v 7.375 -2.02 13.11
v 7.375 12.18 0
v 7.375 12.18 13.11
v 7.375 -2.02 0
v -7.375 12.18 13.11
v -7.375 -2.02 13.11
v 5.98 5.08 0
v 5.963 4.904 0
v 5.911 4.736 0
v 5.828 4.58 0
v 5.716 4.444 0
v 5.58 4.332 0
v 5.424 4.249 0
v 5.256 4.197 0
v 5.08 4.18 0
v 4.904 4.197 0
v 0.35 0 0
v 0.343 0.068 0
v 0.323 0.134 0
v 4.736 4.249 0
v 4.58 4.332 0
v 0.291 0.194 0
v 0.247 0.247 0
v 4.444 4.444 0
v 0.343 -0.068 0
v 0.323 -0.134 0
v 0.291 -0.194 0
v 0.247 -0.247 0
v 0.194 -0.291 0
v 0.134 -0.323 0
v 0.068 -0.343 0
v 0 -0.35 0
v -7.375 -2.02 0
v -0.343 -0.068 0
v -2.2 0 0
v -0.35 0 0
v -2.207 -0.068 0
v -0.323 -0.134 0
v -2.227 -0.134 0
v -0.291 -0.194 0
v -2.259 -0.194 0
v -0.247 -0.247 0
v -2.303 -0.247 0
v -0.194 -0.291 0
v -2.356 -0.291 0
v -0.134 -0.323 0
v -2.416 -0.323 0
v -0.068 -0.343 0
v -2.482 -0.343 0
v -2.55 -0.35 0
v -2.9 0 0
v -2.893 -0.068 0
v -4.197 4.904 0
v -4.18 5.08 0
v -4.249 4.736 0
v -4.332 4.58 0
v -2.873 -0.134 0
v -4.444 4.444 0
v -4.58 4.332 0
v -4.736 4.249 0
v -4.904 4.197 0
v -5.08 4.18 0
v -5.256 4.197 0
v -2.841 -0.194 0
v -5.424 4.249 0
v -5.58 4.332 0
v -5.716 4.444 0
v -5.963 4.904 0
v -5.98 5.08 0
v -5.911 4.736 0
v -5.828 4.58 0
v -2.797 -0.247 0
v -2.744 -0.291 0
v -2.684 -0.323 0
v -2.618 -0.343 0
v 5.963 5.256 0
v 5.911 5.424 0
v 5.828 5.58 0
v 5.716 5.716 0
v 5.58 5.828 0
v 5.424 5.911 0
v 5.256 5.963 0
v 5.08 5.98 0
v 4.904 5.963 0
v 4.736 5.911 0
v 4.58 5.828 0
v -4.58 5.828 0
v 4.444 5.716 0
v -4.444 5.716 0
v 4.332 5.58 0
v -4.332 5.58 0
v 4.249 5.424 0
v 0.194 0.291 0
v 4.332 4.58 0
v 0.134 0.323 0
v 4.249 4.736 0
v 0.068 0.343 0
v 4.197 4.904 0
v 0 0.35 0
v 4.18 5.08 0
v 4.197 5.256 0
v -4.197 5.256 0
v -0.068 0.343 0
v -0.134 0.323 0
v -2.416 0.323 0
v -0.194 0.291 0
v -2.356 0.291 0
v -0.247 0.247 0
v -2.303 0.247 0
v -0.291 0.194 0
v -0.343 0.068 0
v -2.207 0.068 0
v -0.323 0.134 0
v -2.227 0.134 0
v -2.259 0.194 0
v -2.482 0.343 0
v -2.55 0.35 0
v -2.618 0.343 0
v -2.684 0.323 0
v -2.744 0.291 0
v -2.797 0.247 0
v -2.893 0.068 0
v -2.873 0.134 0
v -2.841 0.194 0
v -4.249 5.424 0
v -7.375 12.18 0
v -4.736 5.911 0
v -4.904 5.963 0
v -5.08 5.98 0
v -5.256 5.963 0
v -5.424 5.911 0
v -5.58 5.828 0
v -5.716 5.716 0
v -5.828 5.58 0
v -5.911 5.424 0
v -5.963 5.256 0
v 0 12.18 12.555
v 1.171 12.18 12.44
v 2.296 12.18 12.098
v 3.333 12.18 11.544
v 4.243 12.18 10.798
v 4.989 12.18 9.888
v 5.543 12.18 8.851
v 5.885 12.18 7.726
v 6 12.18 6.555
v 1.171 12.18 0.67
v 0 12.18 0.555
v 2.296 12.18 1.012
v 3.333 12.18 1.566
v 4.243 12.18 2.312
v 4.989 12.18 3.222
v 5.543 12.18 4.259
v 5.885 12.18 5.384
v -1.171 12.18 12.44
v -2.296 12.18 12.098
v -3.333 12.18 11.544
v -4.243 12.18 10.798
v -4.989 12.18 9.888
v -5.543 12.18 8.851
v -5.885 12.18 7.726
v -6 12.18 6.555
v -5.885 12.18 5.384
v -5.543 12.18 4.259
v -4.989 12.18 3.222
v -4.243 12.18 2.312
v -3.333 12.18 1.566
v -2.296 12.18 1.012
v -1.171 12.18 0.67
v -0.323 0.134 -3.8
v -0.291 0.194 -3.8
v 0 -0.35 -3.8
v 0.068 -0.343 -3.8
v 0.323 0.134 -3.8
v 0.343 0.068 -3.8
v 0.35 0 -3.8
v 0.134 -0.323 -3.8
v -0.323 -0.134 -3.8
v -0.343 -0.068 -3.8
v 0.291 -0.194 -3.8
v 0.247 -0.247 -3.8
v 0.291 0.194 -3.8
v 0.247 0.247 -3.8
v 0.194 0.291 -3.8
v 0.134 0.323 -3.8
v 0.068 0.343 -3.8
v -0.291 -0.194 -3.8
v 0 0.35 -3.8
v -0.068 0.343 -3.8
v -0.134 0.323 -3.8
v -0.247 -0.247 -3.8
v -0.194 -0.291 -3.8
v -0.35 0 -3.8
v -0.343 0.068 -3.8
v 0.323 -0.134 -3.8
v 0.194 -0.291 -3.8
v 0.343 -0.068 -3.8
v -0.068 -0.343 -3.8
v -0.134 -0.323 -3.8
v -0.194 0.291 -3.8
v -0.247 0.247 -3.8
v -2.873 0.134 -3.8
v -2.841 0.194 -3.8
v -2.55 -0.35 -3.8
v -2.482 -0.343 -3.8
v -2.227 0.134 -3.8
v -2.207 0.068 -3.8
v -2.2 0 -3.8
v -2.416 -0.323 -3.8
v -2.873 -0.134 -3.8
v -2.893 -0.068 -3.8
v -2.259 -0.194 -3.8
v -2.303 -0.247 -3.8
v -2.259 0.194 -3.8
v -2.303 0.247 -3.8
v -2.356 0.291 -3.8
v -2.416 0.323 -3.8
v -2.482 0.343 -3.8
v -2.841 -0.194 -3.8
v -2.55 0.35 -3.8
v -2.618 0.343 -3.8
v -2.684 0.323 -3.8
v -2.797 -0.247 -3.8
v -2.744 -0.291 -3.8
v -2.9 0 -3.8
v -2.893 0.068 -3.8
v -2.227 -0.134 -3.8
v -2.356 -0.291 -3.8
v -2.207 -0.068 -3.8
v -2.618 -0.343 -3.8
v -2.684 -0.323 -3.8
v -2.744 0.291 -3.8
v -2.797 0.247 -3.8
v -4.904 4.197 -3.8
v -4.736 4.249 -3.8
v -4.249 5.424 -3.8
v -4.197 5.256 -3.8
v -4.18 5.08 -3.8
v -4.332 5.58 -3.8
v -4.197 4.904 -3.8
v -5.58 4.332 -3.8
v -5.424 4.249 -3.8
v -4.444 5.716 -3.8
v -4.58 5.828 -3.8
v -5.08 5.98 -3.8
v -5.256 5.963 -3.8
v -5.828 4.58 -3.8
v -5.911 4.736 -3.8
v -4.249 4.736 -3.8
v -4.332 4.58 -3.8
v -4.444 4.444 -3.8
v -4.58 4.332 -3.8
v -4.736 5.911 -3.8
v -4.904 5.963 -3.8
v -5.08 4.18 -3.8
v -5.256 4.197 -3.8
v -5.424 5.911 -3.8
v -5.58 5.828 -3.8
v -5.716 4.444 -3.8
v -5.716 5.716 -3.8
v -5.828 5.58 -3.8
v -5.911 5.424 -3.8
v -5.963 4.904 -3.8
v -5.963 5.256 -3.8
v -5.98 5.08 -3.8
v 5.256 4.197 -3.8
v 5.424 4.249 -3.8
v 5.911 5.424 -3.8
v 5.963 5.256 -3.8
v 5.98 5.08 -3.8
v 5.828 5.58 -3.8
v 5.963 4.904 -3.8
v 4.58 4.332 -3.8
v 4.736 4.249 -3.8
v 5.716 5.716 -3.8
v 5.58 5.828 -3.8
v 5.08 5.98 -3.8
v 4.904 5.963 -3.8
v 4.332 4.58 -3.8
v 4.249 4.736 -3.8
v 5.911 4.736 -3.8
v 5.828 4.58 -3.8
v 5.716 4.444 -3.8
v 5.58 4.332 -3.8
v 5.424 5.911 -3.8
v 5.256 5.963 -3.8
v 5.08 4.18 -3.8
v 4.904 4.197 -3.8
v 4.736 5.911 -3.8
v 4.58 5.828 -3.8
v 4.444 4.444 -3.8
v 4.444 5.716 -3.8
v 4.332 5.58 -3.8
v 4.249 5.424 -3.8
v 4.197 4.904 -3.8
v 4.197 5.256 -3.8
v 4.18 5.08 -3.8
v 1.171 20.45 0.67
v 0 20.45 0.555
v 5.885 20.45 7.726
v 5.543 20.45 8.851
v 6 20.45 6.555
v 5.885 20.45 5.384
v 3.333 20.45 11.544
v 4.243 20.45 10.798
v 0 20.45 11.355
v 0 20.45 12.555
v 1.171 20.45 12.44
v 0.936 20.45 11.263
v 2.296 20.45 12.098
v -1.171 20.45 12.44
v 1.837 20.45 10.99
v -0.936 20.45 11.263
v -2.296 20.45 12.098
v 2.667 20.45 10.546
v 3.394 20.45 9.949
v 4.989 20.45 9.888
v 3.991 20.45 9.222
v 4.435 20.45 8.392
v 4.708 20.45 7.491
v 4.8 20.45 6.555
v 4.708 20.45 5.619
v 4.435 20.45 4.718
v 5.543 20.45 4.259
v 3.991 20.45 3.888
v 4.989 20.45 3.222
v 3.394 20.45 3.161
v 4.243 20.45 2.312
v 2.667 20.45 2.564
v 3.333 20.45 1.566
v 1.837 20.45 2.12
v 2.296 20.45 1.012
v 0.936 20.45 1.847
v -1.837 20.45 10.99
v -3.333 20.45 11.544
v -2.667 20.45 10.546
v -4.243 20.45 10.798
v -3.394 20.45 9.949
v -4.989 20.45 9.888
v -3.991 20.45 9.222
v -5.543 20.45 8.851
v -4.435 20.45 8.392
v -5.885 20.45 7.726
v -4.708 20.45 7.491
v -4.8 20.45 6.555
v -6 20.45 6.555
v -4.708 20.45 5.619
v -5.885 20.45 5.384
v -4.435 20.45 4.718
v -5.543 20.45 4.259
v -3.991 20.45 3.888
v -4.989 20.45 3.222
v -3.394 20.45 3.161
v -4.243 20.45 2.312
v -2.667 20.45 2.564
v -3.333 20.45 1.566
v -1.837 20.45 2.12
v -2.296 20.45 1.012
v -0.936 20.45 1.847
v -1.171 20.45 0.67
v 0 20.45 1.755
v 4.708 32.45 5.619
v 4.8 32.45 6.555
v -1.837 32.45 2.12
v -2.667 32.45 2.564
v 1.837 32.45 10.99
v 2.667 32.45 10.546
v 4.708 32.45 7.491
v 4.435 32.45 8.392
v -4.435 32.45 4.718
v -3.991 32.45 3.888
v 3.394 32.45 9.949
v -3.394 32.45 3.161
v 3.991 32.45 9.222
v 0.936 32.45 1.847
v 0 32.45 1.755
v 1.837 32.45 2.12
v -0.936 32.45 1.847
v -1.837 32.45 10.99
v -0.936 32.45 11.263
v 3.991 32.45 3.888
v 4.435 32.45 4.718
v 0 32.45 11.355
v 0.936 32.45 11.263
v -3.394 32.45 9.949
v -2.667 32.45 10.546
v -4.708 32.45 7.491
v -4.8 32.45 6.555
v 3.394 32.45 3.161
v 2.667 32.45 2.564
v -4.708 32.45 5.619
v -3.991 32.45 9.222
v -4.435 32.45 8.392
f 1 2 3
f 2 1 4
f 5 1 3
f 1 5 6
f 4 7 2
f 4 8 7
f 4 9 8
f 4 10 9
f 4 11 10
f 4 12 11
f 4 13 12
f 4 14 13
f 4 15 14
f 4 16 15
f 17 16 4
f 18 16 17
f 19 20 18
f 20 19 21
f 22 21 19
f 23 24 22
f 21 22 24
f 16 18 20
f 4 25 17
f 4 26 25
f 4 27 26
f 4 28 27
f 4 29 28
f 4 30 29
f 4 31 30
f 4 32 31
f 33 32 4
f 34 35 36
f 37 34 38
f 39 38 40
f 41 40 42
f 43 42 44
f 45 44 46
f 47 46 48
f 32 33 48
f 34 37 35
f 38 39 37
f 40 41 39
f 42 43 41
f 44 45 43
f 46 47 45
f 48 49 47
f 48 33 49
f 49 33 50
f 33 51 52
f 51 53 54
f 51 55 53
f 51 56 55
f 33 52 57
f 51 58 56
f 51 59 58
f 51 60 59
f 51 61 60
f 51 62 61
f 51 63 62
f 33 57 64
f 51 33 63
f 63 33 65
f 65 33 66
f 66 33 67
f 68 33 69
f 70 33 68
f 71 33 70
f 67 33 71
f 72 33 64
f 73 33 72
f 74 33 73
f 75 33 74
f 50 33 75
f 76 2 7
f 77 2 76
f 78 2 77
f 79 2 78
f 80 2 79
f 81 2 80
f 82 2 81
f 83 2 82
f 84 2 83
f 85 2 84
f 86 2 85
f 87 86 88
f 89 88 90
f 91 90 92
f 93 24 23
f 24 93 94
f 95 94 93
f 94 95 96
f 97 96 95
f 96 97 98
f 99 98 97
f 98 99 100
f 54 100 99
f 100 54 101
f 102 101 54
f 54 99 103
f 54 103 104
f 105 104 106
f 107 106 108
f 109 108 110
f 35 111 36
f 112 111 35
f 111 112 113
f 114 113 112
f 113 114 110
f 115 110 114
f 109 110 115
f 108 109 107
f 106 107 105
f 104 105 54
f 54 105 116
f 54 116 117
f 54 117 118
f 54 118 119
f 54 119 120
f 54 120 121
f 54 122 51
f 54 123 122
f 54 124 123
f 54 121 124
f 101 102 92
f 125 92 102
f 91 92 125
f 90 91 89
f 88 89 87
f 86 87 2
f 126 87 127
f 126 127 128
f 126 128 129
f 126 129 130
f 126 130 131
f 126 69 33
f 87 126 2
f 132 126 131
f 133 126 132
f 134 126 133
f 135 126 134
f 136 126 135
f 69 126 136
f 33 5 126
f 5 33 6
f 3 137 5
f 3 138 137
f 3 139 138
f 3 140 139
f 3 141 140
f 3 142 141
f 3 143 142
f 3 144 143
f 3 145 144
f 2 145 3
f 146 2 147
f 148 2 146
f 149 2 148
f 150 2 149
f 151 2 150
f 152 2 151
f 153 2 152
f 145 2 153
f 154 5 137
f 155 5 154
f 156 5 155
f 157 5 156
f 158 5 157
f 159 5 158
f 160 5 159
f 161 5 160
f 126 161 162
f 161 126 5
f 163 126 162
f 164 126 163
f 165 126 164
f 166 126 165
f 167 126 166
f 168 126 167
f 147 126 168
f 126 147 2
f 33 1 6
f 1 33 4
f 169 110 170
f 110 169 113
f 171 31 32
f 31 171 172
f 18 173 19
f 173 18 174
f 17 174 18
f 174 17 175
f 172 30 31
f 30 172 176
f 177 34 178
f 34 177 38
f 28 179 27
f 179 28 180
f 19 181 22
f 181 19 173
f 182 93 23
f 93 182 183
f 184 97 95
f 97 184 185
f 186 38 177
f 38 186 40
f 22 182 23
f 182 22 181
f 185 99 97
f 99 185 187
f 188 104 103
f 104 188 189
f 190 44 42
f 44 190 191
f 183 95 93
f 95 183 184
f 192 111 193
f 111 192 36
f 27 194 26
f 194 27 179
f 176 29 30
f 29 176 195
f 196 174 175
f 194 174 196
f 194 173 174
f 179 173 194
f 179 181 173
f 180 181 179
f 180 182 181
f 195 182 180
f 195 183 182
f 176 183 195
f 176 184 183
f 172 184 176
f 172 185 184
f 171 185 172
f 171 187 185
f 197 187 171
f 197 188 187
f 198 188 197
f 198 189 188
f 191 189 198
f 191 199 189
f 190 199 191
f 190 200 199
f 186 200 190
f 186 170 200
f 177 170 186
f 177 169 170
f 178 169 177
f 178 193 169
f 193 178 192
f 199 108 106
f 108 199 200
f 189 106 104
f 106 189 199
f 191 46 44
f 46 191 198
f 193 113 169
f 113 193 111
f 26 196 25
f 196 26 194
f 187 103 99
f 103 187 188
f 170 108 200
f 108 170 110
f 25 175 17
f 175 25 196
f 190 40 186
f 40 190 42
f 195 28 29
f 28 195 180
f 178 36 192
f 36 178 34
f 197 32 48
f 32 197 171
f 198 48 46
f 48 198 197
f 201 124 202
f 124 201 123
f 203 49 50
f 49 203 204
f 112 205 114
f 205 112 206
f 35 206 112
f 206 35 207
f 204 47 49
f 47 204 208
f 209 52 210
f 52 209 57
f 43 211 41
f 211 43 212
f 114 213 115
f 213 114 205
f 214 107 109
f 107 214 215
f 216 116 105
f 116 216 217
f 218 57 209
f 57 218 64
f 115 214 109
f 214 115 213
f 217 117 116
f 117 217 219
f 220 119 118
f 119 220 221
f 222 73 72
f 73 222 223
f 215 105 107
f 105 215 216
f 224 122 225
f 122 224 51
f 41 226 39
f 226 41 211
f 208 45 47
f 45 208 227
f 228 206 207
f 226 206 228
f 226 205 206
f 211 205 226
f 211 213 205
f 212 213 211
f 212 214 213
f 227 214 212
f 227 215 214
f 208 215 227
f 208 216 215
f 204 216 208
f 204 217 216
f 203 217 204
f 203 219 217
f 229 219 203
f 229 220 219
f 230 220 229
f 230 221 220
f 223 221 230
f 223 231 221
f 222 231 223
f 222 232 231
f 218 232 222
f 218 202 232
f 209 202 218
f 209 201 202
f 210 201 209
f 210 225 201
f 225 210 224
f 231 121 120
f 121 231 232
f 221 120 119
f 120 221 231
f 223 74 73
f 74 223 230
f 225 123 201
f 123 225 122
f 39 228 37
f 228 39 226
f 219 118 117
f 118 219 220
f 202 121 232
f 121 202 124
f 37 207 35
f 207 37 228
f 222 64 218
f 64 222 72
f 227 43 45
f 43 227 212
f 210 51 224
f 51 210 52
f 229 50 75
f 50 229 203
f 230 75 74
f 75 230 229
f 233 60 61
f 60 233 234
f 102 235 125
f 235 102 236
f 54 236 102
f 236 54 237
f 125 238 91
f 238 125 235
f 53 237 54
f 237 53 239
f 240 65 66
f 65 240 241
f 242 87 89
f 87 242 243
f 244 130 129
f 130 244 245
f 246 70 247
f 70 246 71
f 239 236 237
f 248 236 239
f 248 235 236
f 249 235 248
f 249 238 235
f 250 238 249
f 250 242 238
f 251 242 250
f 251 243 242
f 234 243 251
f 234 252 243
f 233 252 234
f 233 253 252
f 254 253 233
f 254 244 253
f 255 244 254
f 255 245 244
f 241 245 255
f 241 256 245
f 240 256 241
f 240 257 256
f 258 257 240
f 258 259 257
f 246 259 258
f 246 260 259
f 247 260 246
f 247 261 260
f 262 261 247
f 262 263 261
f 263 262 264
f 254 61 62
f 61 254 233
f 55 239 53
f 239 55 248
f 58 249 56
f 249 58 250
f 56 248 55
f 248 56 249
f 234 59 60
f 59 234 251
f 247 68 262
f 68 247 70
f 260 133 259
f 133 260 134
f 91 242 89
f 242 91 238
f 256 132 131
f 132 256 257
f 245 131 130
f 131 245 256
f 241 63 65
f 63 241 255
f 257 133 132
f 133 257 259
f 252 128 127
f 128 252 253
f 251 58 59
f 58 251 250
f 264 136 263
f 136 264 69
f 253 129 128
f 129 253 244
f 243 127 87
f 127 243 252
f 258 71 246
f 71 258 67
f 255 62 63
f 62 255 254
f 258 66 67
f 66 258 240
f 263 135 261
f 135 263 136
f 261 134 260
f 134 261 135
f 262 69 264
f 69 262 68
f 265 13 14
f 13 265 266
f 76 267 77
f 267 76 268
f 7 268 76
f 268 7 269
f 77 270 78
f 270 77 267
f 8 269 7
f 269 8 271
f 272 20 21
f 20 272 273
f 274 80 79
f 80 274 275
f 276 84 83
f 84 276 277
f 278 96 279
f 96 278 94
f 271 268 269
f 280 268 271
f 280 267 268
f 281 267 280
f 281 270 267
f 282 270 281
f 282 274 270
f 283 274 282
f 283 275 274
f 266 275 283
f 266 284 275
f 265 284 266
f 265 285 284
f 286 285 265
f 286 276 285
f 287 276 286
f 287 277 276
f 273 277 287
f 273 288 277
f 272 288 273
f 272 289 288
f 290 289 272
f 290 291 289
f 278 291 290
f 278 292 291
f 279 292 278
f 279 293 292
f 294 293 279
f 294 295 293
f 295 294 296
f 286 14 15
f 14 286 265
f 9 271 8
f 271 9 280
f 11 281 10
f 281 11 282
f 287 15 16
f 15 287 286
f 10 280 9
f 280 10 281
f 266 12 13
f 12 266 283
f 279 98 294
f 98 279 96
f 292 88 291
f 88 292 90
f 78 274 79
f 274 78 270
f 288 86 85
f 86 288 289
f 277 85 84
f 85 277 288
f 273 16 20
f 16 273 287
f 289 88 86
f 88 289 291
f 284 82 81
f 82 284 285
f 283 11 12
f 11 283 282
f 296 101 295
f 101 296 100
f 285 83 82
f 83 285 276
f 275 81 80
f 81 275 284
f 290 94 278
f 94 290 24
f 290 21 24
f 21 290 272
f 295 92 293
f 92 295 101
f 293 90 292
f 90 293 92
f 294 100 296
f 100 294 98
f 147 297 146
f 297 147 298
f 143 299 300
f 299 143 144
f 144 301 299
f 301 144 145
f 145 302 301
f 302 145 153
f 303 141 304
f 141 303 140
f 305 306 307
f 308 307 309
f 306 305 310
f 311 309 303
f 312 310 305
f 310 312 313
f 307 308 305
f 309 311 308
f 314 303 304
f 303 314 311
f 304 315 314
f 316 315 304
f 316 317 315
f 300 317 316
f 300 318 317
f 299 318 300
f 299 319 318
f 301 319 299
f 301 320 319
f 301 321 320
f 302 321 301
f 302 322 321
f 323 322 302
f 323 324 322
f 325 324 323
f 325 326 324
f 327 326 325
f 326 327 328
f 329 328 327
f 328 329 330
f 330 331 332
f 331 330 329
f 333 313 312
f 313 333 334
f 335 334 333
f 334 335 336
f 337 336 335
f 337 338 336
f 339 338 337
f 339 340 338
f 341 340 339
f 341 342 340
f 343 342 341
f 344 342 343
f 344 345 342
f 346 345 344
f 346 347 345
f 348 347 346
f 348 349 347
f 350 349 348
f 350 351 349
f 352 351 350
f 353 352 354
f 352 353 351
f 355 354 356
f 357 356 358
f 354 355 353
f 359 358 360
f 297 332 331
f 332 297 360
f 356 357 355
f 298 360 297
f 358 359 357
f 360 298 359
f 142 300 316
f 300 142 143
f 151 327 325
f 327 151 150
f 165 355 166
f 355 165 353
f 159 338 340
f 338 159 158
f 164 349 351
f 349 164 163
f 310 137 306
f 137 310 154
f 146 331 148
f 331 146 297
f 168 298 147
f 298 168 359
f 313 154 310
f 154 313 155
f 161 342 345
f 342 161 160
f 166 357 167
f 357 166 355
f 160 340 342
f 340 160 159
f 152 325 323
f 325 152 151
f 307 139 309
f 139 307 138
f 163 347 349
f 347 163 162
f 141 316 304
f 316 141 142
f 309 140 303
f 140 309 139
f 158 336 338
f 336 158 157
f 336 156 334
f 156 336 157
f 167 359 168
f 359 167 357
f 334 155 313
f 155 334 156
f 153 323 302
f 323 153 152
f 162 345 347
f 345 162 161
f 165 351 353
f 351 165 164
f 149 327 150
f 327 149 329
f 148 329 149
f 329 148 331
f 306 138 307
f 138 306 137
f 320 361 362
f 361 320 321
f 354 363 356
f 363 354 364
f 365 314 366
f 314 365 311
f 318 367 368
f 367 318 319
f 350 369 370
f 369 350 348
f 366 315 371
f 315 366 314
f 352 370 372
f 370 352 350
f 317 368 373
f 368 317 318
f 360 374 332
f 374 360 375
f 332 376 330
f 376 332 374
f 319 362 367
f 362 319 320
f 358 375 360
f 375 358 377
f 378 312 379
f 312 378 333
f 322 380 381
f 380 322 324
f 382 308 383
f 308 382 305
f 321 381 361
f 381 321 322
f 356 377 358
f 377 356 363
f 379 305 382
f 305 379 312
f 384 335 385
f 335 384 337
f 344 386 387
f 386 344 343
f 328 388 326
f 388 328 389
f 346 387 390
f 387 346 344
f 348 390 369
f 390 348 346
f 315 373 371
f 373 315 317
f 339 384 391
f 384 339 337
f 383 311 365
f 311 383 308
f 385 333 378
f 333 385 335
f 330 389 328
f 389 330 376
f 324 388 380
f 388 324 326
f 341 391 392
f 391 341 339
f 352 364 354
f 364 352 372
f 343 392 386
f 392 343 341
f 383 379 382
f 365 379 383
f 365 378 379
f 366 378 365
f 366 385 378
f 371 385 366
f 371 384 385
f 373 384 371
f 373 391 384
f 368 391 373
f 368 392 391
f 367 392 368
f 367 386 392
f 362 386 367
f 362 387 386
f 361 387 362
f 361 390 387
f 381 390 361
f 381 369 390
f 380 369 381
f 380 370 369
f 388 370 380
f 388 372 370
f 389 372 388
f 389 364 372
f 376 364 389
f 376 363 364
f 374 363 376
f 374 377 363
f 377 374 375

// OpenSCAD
//
// Amphenol / Adamtech PCB BNC
//

// center on signal pin

e = 0.1;
$fn = 32;

box_x = 14.75;
box_y = 14.20;
box_z = 13.11;

pin_z = 3.80;
pin_y = -2.55;
sig_d = 0.70;
gnd_d = 1.80;

thr_len = 8.8;
thr_d = 12;
cyl_len = 12;
cyl_d = 9.6;


translate( [-box_x/2, -2.02, 0]) {
     color("darkgrey")
     cube( [box_x, box_y, box_z]);
}
translate( [0, 0, -pin_z])  cylinder( d=sig_d, h=pin_z);
translate( [pin_y, 0, -pin_z])  cylinder( d=sig_d, h=pin_z);
translate( [-5.08, 5.08, -pin_z]) cylinder( d=gnd_d, h=pin_z);
translate( [ 5.08, 5.08, -pin_z]) cylinder( d=gnd_d, h=pin_z);


translate( [0, pin_y+box_y+thr_len, box_z/2])
rotate( [90, 0, 0])
cylinder( h=thr_len, d=thr_d);

translate( [0, pin_y+box_y+thr_len+cyl_len, box_z/2])
rotate( [90, 0, 0])
cylinder( h=cyl_len, d=cyl_d);
